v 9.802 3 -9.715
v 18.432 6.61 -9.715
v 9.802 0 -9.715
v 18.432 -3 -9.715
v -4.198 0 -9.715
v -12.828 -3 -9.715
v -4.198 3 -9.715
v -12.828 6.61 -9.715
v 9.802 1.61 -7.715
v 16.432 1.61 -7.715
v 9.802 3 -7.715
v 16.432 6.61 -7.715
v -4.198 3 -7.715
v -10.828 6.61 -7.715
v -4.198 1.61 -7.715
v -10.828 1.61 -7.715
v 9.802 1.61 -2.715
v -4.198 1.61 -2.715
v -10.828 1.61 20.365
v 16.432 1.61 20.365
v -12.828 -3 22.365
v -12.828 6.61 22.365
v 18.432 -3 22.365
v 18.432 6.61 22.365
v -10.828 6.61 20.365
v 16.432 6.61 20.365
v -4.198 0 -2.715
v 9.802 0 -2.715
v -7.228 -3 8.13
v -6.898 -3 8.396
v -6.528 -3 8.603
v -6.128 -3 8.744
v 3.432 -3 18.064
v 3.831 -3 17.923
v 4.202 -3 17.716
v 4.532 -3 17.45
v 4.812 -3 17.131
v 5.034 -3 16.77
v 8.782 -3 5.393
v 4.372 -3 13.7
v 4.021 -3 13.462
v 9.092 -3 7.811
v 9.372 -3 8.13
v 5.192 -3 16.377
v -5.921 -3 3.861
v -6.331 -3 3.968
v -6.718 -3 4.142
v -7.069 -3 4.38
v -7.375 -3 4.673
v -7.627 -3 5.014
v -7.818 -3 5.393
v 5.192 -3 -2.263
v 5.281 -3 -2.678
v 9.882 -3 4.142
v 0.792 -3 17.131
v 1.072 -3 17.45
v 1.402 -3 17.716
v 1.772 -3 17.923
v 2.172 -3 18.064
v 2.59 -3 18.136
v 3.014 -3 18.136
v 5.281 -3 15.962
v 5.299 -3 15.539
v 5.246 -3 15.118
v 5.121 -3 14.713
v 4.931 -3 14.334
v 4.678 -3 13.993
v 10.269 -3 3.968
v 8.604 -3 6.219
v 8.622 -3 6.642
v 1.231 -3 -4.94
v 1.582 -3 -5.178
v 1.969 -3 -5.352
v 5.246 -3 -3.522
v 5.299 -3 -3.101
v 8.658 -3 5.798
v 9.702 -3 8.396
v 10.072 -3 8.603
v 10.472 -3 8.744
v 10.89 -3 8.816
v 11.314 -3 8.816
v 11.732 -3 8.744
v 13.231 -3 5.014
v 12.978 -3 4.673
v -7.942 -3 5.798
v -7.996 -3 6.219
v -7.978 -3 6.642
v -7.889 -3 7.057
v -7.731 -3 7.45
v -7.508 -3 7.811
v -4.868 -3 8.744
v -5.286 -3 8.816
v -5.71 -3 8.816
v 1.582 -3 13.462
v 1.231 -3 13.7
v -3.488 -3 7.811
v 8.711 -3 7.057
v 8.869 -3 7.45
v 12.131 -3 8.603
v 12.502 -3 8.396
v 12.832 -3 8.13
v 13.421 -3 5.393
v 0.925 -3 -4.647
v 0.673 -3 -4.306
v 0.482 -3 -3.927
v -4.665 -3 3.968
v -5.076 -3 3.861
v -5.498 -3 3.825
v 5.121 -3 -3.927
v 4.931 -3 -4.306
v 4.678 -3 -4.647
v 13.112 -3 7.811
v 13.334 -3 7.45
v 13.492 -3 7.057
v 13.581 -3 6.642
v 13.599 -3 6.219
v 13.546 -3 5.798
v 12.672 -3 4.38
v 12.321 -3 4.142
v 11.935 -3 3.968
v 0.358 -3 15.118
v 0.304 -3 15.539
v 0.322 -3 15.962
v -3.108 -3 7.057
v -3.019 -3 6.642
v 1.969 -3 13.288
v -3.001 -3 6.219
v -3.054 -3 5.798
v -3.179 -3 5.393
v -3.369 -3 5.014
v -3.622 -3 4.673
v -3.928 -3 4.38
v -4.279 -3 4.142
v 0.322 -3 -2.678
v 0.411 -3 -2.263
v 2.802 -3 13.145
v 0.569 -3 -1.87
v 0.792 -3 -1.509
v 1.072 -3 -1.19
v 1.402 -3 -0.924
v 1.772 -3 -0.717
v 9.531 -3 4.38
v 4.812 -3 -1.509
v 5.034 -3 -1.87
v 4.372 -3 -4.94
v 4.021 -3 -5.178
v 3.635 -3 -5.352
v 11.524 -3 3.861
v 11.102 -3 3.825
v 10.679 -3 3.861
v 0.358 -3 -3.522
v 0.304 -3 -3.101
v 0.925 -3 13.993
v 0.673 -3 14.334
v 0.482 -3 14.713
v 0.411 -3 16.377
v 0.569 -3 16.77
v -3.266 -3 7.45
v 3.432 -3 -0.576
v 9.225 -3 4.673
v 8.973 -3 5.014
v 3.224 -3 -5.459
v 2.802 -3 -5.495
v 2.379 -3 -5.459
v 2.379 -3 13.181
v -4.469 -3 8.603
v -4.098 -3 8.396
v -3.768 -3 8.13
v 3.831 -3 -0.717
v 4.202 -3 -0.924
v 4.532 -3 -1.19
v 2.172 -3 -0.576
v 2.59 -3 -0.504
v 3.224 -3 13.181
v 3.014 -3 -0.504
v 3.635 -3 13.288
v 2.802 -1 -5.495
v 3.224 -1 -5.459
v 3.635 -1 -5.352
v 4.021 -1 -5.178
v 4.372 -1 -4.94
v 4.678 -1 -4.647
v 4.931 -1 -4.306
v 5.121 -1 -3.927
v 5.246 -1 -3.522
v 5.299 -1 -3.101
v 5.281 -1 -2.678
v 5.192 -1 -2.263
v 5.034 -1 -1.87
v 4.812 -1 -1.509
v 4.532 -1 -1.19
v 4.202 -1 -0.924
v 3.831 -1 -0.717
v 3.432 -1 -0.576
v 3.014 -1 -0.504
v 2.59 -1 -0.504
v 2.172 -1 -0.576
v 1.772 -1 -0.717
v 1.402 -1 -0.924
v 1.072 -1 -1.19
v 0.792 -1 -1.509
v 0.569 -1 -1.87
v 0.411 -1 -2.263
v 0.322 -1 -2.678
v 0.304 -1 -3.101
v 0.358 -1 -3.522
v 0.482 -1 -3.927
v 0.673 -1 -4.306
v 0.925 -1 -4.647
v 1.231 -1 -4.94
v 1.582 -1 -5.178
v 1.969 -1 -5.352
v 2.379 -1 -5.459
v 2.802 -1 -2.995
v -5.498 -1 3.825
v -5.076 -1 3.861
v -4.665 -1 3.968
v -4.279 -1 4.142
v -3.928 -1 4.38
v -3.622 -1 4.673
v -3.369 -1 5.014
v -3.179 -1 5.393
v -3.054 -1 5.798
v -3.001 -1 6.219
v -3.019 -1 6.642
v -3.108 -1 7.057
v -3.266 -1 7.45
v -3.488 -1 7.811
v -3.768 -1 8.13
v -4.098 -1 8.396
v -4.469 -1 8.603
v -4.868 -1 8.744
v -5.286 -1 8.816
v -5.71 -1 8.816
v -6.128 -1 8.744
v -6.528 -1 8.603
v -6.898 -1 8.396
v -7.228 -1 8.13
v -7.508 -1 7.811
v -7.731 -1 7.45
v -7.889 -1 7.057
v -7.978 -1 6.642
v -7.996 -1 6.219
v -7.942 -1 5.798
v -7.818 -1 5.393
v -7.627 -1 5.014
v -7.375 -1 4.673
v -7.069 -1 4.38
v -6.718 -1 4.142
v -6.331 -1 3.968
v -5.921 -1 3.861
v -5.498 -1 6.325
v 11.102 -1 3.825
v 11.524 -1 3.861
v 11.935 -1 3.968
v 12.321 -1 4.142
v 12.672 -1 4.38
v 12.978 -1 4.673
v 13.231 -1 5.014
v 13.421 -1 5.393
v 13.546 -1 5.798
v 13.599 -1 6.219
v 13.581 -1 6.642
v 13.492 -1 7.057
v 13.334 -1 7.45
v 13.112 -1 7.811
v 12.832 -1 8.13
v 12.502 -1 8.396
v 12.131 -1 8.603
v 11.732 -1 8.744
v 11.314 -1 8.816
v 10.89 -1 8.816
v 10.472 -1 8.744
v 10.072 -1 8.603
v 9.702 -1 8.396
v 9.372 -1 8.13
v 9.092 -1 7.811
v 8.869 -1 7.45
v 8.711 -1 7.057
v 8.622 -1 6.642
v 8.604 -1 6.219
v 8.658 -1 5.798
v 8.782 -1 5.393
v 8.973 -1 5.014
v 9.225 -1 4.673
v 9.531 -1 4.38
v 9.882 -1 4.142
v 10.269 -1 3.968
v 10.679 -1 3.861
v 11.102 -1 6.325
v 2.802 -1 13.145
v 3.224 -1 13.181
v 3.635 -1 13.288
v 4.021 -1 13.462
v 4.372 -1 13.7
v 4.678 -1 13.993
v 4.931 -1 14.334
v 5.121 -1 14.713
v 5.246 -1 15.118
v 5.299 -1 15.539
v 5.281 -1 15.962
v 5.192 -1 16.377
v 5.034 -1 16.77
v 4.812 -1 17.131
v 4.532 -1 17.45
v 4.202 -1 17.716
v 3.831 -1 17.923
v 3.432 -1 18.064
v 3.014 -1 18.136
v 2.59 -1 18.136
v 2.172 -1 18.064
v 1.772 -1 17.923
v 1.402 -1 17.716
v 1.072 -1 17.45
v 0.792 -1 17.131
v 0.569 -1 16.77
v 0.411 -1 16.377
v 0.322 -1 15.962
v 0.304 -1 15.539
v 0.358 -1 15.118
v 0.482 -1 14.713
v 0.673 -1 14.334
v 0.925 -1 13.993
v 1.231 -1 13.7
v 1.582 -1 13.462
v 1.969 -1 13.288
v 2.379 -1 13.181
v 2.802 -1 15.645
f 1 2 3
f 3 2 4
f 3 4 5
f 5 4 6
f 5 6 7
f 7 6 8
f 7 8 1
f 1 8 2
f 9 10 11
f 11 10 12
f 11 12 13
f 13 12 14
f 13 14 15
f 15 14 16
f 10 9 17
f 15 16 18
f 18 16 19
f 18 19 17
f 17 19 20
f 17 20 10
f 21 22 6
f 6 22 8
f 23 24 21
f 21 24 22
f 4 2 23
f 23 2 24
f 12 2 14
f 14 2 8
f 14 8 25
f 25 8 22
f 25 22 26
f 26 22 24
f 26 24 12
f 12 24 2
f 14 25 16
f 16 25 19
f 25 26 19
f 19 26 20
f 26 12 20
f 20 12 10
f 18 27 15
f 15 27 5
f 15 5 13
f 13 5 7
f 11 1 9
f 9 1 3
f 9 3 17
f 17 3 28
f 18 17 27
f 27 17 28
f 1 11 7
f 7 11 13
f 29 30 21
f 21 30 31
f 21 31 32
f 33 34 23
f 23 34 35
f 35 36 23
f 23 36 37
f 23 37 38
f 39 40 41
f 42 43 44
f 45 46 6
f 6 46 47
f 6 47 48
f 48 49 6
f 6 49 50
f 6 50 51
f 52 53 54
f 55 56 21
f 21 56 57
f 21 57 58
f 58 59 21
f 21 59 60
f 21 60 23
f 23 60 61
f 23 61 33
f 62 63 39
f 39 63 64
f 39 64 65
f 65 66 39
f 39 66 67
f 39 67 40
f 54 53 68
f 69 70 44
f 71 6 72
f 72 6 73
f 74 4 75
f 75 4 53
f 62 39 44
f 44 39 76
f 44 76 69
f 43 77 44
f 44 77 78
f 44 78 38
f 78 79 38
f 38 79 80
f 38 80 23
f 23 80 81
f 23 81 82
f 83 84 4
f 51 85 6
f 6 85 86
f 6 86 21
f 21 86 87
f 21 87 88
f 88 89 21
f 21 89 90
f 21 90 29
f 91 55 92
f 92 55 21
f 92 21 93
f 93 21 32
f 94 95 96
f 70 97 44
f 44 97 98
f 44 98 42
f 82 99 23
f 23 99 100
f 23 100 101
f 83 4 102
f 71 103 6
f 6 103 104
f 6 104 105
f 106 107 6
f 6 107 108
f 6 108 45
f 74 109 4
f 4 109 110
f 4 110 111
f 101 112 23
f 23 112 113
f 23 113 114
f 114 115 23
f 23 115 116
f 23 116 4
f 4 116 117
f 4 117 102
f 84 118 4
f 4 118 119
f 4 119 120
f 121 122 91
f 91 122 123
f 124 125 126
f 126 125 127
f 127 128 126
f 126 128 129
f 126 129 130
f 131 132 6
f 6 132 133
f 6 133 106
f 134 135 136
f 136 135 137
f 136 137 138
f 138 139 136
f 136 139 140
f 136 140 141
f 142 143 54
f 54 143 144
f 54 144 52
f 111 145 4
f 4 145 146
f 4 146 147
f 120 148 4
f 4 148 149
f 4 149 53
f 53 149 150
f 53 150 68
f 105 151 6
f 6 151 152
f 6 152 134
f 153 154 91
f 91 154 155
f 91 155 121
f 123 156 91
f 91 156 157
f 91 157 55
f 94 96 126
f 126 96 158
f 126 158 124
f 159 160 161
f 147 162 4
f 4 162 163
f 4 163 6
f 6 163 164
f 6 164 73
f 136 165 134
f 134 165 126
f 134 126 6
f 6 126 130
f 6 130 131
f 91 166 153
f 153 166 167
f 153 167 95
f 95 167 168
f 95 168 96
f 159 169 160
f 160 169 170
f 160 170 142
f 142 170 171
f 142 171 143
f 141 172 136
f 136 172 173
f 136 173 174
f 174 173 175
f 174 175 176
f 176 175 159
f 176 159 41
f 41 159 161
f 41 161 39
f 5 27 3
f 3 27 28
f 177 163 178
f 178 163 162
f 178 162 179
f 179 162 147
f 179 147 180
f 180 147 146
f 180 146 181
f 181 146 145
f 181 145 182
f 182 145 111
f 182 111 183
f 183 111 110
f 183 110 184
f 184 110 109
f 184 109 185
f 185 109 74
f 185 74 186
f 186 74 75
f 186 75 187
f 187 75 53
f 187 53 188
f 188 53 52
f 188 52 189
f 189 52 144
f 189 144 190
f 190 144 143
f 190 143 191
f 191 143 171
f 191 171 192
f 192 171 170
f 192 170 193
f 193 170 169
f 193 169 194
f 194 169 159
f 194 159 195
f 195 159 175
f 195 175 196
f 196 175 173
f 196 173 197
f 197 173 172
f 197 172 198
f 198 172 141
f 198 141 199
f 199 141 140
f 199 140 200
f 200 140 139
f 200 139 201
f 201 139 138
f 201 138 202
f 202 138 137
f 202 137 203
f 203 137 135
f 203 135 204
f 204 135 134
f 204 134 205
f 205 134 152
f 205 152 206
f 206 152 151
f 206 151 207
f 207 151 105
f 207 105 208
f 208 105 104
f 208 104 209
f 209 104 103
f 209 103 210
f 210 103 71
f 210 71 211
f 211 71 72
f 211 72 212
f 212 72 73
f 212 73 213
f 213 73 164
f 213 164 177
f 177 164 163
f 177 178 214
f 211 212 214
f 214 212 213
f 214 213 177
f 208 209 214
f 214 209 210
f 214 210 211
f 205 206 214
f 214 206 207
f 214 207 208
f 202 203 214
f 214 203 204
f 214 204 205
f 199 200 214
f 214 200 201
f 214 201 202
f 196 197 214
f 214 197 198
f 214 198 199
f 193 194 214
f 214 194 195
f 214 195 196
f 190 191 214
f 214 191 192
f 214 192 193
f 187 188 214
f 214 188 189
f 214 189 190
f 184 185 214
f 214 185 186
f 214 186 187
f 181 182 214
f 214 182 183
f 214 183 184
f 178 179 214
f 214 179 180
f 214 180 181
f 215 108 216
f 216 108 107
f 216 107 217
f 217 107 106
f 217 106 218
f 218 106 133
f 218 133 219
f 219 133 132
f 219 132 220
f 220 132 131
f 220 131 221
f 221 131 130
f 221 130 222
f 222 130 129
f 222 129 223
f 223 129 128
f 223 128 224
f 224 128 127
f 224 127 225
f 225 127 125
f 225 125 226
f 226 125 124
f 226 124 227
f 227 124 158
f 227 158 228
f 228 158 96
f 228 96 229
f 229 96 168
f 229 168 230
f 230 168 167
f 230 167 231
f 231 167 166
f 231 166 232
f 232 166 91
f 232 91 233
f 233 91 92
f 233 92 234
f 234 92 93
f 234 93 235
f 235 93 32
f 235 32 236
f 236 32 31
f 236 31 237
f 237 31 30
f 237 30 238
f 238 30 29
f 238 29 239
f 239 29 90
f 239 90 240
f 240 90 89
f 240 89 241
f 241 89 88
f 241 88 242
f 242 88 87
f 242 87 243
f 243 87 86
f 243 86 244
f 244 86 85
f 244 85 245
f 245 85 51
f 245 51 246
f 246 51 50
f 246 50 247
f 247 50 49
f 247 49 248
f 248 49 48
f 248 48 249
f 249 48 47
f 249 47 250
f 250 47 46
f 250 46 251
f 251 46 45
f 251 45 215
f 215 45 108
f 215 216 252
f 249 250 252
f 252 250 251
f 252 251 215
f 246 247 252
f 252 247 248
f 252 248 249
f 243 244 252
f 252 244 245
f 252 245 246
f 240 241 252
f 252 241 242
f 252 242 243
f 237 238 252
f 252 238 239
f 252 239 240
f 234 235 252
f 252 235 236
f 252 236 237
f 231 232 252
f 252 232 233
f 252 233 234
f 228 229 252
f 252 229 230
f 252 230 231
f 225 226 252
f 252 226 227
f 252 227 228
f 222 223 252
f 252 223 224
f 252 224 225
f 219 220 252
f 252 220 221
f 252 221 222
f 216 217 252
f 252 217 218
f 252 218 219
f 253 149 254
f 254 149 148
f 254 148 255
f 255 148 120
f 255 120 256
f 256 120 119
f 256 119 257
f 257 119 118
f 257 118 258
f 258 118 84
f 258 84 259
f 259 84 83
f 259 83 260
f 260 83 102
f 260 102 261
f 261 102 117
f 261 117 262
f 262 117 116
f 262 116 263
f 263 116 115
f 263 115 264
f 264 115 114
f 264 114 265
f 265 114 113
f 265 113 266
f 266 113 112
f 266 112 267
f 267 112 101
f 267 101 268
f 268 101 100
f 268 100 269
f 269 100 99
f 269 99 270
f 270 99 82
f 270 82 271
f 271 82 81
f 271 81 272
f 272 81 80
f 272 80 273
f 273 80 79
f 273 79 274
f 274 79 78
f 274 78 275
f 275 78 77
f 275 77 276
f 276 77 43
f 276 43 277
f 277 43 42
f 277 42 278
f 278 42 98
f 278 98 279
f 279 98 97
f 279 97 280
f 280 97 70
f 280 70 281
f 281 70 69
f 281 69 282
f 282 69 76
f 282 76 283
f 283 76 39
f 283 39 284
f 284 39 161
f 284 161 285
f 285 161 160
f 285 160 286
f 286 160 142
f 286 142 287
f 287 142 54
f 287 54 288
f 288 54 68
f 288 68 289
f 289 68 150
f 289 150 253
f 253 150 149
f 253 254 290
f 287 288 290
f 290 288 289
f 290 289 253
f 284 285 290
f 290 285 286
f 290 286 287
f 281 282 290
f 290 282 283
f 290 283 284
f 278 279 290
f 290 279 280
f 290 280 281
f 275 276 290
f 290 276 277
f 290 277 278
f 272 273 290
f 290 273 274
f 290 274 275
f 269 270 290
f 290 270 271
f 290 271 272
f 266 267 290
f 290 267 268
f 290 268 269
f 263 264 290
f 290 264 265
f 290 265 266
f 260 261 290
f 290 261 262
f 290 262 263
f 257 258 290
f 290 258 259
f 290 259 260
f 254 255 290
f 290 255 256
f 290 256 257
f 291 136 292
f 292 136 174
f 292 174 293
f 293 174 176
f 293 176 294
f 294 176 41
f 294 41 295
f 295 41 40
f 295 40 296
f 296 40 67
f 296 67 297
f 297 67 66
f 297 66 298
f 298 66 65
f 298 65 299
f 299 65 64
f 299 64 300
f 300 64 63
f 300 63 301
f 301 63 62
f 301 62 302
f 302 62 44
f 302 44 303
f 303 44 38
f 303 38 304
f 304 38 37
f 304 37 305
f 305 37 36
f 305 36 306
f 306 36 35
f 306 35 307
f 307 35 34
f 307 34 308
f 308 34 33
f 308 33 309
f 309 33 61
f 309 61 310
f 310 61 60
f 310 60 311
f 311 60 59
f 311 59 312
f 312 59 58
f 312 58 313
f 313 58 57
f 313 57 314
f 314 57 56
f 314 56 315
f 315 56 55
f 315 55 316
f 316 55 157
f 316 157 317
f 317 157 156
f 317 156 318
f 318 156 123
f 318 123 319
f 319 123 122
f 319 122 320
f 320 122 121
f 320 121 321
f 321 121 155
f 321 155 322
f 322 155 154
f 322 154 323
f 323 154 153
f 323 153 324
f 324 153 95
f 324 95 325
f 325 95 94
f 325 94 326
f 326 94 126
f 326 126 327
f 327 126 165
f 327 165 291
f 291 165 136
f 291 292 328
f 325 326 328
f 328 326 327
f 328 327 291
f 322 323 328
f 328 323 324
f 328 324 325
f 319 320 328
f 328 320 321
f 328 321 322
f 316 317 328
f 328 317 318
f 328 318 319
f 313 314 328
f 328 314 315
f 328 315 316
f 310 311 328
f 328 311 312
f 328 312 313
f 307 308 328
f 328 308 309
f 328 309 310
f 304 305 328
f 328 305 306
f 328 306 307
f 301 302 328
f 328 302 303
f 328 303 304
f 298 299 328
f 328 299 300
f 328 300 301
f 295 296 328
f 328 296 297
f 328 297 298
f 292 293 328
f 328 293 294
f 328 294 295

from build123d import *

# Parameters (mm, degrees)
SKETCH1_W           = 31.26
SKETCH1_H           = 32.08
BOSS_EXTRUDE2_DEPTH = 1.61
SKETCH4_W           = 31.26
SKETCH4_H           = 32.08
SKETCH4_W_2         = 27.26
SKETCH4_H_2         = 28.08
BOSS_EXTRUDE3_DEPTH = 5
SKETCH5_W           = 14
SKETCH5_H           = 5
CUT_EXTRUDE3_DEPTH  = 5
SKETCH8_W           = 14
SKETCH8_H           = 3
CUT_EXTRUDE5_DEPTH  = 5
SKETCH9_W           = 31.26
SKETCH9_H           = 32.08
BOSS_EXTRUDE4_DEPTH = 3
SKETCH10_R          = 2.5
CUT_EXTRUDE6_DEPTH  = 2


with BuildPart() as part:
    # Sketch1 → Boss-Extrude2 (new body)
    with BuildSketch(Plane(origin=(0, 0, 0), x_dir=(1, 0, 0), z_dir=(0, 1, 0))):
        with Locations((2.801725352, -6.324753521)):
            Rectangle(SKETCH1_W, SKETCH1_H)
    extrude(amount=BOSS_EXTRUDE2_DEPTH)

    # Sketch4 → Boss-Extrude3 (add)
    with BuildSketch(Plane(origin=(0, 1.61, 0), x_dir=(1, 0, 0), z_dir=(0, 1, 0))):
        with Locations((2.801725352, -6.324753521)):
            Rectangle(SKETCH4_W, SKETCH4_H)
        with Locations((2.801725352, -6.324753521)):
            Rectangle(SKETCH4_W_2, SKETCH4_H_2, mode=Mode.SUBTRACT)
    extrude(amount=BOSS_EXTRUDE3_DEPTH)

    # Sketch5 → Cut-Extrude3 (cut)
    with BuildSketch(Plane(origin=(0, 1.61, 0), x_dir=(1, 0, 0), z_dir=(0, 1, 0))):
        with Locations((2.801725352, 5.215246479)):
            Rectangle(SKETCH5_W, SKETCH5_H)
    extrude(amount=-CUT_EXTRUDE3_DEPTH, mode=Mode.SUBTRACT)

    # Sketch8 → Cut-Extrude5 (cut)
    with BuildSketch(Plane(origin=(0, 0, -9.715246479), x_dir=(-1, 0, 0), z_dir=(0, 0, -1))):
        with Locations((-2.801725352, 1.5)):
            Rectangle(SKETCH8_W, SKETCH8_H)
    extrude(amount=-CUT_EXTRUDE5_DEPTH, mode=Mode.SUBTRACT)

    # Sketch9 → Boss-Extrude4 (add)
    with BuildSketch(Plane.XZ):
        with Locations((2.801725352, 6.324753521)):
            Rectangle(SKETCH9_W, SKETCH9_H)
    extrude(amount=BOSS_EXTRUDE4_DEPTH)

    # Sketch10 → Cut-Extrude6 (cut)
    with BuildSketch(Plane.XZ.offset(3)):
        with Locations((2.801725352, 15.644753521)):
            Circle(SKETCH10_R)
        with Locations((11.101725352, 6.324753521)):
            Circle(SKETCH10_R)
        with Locations((-5.498274648, 6.324753521)):
            Circle(SKETCH10_R)
        with Locations((2.801725352, -2.995246479)):
            Circle(SKETCH10_R)
    extrude(amount=-CUT_EXTRUDE6_DEPTH, mode=Mode.SUBTRACT)


solid = part.part
